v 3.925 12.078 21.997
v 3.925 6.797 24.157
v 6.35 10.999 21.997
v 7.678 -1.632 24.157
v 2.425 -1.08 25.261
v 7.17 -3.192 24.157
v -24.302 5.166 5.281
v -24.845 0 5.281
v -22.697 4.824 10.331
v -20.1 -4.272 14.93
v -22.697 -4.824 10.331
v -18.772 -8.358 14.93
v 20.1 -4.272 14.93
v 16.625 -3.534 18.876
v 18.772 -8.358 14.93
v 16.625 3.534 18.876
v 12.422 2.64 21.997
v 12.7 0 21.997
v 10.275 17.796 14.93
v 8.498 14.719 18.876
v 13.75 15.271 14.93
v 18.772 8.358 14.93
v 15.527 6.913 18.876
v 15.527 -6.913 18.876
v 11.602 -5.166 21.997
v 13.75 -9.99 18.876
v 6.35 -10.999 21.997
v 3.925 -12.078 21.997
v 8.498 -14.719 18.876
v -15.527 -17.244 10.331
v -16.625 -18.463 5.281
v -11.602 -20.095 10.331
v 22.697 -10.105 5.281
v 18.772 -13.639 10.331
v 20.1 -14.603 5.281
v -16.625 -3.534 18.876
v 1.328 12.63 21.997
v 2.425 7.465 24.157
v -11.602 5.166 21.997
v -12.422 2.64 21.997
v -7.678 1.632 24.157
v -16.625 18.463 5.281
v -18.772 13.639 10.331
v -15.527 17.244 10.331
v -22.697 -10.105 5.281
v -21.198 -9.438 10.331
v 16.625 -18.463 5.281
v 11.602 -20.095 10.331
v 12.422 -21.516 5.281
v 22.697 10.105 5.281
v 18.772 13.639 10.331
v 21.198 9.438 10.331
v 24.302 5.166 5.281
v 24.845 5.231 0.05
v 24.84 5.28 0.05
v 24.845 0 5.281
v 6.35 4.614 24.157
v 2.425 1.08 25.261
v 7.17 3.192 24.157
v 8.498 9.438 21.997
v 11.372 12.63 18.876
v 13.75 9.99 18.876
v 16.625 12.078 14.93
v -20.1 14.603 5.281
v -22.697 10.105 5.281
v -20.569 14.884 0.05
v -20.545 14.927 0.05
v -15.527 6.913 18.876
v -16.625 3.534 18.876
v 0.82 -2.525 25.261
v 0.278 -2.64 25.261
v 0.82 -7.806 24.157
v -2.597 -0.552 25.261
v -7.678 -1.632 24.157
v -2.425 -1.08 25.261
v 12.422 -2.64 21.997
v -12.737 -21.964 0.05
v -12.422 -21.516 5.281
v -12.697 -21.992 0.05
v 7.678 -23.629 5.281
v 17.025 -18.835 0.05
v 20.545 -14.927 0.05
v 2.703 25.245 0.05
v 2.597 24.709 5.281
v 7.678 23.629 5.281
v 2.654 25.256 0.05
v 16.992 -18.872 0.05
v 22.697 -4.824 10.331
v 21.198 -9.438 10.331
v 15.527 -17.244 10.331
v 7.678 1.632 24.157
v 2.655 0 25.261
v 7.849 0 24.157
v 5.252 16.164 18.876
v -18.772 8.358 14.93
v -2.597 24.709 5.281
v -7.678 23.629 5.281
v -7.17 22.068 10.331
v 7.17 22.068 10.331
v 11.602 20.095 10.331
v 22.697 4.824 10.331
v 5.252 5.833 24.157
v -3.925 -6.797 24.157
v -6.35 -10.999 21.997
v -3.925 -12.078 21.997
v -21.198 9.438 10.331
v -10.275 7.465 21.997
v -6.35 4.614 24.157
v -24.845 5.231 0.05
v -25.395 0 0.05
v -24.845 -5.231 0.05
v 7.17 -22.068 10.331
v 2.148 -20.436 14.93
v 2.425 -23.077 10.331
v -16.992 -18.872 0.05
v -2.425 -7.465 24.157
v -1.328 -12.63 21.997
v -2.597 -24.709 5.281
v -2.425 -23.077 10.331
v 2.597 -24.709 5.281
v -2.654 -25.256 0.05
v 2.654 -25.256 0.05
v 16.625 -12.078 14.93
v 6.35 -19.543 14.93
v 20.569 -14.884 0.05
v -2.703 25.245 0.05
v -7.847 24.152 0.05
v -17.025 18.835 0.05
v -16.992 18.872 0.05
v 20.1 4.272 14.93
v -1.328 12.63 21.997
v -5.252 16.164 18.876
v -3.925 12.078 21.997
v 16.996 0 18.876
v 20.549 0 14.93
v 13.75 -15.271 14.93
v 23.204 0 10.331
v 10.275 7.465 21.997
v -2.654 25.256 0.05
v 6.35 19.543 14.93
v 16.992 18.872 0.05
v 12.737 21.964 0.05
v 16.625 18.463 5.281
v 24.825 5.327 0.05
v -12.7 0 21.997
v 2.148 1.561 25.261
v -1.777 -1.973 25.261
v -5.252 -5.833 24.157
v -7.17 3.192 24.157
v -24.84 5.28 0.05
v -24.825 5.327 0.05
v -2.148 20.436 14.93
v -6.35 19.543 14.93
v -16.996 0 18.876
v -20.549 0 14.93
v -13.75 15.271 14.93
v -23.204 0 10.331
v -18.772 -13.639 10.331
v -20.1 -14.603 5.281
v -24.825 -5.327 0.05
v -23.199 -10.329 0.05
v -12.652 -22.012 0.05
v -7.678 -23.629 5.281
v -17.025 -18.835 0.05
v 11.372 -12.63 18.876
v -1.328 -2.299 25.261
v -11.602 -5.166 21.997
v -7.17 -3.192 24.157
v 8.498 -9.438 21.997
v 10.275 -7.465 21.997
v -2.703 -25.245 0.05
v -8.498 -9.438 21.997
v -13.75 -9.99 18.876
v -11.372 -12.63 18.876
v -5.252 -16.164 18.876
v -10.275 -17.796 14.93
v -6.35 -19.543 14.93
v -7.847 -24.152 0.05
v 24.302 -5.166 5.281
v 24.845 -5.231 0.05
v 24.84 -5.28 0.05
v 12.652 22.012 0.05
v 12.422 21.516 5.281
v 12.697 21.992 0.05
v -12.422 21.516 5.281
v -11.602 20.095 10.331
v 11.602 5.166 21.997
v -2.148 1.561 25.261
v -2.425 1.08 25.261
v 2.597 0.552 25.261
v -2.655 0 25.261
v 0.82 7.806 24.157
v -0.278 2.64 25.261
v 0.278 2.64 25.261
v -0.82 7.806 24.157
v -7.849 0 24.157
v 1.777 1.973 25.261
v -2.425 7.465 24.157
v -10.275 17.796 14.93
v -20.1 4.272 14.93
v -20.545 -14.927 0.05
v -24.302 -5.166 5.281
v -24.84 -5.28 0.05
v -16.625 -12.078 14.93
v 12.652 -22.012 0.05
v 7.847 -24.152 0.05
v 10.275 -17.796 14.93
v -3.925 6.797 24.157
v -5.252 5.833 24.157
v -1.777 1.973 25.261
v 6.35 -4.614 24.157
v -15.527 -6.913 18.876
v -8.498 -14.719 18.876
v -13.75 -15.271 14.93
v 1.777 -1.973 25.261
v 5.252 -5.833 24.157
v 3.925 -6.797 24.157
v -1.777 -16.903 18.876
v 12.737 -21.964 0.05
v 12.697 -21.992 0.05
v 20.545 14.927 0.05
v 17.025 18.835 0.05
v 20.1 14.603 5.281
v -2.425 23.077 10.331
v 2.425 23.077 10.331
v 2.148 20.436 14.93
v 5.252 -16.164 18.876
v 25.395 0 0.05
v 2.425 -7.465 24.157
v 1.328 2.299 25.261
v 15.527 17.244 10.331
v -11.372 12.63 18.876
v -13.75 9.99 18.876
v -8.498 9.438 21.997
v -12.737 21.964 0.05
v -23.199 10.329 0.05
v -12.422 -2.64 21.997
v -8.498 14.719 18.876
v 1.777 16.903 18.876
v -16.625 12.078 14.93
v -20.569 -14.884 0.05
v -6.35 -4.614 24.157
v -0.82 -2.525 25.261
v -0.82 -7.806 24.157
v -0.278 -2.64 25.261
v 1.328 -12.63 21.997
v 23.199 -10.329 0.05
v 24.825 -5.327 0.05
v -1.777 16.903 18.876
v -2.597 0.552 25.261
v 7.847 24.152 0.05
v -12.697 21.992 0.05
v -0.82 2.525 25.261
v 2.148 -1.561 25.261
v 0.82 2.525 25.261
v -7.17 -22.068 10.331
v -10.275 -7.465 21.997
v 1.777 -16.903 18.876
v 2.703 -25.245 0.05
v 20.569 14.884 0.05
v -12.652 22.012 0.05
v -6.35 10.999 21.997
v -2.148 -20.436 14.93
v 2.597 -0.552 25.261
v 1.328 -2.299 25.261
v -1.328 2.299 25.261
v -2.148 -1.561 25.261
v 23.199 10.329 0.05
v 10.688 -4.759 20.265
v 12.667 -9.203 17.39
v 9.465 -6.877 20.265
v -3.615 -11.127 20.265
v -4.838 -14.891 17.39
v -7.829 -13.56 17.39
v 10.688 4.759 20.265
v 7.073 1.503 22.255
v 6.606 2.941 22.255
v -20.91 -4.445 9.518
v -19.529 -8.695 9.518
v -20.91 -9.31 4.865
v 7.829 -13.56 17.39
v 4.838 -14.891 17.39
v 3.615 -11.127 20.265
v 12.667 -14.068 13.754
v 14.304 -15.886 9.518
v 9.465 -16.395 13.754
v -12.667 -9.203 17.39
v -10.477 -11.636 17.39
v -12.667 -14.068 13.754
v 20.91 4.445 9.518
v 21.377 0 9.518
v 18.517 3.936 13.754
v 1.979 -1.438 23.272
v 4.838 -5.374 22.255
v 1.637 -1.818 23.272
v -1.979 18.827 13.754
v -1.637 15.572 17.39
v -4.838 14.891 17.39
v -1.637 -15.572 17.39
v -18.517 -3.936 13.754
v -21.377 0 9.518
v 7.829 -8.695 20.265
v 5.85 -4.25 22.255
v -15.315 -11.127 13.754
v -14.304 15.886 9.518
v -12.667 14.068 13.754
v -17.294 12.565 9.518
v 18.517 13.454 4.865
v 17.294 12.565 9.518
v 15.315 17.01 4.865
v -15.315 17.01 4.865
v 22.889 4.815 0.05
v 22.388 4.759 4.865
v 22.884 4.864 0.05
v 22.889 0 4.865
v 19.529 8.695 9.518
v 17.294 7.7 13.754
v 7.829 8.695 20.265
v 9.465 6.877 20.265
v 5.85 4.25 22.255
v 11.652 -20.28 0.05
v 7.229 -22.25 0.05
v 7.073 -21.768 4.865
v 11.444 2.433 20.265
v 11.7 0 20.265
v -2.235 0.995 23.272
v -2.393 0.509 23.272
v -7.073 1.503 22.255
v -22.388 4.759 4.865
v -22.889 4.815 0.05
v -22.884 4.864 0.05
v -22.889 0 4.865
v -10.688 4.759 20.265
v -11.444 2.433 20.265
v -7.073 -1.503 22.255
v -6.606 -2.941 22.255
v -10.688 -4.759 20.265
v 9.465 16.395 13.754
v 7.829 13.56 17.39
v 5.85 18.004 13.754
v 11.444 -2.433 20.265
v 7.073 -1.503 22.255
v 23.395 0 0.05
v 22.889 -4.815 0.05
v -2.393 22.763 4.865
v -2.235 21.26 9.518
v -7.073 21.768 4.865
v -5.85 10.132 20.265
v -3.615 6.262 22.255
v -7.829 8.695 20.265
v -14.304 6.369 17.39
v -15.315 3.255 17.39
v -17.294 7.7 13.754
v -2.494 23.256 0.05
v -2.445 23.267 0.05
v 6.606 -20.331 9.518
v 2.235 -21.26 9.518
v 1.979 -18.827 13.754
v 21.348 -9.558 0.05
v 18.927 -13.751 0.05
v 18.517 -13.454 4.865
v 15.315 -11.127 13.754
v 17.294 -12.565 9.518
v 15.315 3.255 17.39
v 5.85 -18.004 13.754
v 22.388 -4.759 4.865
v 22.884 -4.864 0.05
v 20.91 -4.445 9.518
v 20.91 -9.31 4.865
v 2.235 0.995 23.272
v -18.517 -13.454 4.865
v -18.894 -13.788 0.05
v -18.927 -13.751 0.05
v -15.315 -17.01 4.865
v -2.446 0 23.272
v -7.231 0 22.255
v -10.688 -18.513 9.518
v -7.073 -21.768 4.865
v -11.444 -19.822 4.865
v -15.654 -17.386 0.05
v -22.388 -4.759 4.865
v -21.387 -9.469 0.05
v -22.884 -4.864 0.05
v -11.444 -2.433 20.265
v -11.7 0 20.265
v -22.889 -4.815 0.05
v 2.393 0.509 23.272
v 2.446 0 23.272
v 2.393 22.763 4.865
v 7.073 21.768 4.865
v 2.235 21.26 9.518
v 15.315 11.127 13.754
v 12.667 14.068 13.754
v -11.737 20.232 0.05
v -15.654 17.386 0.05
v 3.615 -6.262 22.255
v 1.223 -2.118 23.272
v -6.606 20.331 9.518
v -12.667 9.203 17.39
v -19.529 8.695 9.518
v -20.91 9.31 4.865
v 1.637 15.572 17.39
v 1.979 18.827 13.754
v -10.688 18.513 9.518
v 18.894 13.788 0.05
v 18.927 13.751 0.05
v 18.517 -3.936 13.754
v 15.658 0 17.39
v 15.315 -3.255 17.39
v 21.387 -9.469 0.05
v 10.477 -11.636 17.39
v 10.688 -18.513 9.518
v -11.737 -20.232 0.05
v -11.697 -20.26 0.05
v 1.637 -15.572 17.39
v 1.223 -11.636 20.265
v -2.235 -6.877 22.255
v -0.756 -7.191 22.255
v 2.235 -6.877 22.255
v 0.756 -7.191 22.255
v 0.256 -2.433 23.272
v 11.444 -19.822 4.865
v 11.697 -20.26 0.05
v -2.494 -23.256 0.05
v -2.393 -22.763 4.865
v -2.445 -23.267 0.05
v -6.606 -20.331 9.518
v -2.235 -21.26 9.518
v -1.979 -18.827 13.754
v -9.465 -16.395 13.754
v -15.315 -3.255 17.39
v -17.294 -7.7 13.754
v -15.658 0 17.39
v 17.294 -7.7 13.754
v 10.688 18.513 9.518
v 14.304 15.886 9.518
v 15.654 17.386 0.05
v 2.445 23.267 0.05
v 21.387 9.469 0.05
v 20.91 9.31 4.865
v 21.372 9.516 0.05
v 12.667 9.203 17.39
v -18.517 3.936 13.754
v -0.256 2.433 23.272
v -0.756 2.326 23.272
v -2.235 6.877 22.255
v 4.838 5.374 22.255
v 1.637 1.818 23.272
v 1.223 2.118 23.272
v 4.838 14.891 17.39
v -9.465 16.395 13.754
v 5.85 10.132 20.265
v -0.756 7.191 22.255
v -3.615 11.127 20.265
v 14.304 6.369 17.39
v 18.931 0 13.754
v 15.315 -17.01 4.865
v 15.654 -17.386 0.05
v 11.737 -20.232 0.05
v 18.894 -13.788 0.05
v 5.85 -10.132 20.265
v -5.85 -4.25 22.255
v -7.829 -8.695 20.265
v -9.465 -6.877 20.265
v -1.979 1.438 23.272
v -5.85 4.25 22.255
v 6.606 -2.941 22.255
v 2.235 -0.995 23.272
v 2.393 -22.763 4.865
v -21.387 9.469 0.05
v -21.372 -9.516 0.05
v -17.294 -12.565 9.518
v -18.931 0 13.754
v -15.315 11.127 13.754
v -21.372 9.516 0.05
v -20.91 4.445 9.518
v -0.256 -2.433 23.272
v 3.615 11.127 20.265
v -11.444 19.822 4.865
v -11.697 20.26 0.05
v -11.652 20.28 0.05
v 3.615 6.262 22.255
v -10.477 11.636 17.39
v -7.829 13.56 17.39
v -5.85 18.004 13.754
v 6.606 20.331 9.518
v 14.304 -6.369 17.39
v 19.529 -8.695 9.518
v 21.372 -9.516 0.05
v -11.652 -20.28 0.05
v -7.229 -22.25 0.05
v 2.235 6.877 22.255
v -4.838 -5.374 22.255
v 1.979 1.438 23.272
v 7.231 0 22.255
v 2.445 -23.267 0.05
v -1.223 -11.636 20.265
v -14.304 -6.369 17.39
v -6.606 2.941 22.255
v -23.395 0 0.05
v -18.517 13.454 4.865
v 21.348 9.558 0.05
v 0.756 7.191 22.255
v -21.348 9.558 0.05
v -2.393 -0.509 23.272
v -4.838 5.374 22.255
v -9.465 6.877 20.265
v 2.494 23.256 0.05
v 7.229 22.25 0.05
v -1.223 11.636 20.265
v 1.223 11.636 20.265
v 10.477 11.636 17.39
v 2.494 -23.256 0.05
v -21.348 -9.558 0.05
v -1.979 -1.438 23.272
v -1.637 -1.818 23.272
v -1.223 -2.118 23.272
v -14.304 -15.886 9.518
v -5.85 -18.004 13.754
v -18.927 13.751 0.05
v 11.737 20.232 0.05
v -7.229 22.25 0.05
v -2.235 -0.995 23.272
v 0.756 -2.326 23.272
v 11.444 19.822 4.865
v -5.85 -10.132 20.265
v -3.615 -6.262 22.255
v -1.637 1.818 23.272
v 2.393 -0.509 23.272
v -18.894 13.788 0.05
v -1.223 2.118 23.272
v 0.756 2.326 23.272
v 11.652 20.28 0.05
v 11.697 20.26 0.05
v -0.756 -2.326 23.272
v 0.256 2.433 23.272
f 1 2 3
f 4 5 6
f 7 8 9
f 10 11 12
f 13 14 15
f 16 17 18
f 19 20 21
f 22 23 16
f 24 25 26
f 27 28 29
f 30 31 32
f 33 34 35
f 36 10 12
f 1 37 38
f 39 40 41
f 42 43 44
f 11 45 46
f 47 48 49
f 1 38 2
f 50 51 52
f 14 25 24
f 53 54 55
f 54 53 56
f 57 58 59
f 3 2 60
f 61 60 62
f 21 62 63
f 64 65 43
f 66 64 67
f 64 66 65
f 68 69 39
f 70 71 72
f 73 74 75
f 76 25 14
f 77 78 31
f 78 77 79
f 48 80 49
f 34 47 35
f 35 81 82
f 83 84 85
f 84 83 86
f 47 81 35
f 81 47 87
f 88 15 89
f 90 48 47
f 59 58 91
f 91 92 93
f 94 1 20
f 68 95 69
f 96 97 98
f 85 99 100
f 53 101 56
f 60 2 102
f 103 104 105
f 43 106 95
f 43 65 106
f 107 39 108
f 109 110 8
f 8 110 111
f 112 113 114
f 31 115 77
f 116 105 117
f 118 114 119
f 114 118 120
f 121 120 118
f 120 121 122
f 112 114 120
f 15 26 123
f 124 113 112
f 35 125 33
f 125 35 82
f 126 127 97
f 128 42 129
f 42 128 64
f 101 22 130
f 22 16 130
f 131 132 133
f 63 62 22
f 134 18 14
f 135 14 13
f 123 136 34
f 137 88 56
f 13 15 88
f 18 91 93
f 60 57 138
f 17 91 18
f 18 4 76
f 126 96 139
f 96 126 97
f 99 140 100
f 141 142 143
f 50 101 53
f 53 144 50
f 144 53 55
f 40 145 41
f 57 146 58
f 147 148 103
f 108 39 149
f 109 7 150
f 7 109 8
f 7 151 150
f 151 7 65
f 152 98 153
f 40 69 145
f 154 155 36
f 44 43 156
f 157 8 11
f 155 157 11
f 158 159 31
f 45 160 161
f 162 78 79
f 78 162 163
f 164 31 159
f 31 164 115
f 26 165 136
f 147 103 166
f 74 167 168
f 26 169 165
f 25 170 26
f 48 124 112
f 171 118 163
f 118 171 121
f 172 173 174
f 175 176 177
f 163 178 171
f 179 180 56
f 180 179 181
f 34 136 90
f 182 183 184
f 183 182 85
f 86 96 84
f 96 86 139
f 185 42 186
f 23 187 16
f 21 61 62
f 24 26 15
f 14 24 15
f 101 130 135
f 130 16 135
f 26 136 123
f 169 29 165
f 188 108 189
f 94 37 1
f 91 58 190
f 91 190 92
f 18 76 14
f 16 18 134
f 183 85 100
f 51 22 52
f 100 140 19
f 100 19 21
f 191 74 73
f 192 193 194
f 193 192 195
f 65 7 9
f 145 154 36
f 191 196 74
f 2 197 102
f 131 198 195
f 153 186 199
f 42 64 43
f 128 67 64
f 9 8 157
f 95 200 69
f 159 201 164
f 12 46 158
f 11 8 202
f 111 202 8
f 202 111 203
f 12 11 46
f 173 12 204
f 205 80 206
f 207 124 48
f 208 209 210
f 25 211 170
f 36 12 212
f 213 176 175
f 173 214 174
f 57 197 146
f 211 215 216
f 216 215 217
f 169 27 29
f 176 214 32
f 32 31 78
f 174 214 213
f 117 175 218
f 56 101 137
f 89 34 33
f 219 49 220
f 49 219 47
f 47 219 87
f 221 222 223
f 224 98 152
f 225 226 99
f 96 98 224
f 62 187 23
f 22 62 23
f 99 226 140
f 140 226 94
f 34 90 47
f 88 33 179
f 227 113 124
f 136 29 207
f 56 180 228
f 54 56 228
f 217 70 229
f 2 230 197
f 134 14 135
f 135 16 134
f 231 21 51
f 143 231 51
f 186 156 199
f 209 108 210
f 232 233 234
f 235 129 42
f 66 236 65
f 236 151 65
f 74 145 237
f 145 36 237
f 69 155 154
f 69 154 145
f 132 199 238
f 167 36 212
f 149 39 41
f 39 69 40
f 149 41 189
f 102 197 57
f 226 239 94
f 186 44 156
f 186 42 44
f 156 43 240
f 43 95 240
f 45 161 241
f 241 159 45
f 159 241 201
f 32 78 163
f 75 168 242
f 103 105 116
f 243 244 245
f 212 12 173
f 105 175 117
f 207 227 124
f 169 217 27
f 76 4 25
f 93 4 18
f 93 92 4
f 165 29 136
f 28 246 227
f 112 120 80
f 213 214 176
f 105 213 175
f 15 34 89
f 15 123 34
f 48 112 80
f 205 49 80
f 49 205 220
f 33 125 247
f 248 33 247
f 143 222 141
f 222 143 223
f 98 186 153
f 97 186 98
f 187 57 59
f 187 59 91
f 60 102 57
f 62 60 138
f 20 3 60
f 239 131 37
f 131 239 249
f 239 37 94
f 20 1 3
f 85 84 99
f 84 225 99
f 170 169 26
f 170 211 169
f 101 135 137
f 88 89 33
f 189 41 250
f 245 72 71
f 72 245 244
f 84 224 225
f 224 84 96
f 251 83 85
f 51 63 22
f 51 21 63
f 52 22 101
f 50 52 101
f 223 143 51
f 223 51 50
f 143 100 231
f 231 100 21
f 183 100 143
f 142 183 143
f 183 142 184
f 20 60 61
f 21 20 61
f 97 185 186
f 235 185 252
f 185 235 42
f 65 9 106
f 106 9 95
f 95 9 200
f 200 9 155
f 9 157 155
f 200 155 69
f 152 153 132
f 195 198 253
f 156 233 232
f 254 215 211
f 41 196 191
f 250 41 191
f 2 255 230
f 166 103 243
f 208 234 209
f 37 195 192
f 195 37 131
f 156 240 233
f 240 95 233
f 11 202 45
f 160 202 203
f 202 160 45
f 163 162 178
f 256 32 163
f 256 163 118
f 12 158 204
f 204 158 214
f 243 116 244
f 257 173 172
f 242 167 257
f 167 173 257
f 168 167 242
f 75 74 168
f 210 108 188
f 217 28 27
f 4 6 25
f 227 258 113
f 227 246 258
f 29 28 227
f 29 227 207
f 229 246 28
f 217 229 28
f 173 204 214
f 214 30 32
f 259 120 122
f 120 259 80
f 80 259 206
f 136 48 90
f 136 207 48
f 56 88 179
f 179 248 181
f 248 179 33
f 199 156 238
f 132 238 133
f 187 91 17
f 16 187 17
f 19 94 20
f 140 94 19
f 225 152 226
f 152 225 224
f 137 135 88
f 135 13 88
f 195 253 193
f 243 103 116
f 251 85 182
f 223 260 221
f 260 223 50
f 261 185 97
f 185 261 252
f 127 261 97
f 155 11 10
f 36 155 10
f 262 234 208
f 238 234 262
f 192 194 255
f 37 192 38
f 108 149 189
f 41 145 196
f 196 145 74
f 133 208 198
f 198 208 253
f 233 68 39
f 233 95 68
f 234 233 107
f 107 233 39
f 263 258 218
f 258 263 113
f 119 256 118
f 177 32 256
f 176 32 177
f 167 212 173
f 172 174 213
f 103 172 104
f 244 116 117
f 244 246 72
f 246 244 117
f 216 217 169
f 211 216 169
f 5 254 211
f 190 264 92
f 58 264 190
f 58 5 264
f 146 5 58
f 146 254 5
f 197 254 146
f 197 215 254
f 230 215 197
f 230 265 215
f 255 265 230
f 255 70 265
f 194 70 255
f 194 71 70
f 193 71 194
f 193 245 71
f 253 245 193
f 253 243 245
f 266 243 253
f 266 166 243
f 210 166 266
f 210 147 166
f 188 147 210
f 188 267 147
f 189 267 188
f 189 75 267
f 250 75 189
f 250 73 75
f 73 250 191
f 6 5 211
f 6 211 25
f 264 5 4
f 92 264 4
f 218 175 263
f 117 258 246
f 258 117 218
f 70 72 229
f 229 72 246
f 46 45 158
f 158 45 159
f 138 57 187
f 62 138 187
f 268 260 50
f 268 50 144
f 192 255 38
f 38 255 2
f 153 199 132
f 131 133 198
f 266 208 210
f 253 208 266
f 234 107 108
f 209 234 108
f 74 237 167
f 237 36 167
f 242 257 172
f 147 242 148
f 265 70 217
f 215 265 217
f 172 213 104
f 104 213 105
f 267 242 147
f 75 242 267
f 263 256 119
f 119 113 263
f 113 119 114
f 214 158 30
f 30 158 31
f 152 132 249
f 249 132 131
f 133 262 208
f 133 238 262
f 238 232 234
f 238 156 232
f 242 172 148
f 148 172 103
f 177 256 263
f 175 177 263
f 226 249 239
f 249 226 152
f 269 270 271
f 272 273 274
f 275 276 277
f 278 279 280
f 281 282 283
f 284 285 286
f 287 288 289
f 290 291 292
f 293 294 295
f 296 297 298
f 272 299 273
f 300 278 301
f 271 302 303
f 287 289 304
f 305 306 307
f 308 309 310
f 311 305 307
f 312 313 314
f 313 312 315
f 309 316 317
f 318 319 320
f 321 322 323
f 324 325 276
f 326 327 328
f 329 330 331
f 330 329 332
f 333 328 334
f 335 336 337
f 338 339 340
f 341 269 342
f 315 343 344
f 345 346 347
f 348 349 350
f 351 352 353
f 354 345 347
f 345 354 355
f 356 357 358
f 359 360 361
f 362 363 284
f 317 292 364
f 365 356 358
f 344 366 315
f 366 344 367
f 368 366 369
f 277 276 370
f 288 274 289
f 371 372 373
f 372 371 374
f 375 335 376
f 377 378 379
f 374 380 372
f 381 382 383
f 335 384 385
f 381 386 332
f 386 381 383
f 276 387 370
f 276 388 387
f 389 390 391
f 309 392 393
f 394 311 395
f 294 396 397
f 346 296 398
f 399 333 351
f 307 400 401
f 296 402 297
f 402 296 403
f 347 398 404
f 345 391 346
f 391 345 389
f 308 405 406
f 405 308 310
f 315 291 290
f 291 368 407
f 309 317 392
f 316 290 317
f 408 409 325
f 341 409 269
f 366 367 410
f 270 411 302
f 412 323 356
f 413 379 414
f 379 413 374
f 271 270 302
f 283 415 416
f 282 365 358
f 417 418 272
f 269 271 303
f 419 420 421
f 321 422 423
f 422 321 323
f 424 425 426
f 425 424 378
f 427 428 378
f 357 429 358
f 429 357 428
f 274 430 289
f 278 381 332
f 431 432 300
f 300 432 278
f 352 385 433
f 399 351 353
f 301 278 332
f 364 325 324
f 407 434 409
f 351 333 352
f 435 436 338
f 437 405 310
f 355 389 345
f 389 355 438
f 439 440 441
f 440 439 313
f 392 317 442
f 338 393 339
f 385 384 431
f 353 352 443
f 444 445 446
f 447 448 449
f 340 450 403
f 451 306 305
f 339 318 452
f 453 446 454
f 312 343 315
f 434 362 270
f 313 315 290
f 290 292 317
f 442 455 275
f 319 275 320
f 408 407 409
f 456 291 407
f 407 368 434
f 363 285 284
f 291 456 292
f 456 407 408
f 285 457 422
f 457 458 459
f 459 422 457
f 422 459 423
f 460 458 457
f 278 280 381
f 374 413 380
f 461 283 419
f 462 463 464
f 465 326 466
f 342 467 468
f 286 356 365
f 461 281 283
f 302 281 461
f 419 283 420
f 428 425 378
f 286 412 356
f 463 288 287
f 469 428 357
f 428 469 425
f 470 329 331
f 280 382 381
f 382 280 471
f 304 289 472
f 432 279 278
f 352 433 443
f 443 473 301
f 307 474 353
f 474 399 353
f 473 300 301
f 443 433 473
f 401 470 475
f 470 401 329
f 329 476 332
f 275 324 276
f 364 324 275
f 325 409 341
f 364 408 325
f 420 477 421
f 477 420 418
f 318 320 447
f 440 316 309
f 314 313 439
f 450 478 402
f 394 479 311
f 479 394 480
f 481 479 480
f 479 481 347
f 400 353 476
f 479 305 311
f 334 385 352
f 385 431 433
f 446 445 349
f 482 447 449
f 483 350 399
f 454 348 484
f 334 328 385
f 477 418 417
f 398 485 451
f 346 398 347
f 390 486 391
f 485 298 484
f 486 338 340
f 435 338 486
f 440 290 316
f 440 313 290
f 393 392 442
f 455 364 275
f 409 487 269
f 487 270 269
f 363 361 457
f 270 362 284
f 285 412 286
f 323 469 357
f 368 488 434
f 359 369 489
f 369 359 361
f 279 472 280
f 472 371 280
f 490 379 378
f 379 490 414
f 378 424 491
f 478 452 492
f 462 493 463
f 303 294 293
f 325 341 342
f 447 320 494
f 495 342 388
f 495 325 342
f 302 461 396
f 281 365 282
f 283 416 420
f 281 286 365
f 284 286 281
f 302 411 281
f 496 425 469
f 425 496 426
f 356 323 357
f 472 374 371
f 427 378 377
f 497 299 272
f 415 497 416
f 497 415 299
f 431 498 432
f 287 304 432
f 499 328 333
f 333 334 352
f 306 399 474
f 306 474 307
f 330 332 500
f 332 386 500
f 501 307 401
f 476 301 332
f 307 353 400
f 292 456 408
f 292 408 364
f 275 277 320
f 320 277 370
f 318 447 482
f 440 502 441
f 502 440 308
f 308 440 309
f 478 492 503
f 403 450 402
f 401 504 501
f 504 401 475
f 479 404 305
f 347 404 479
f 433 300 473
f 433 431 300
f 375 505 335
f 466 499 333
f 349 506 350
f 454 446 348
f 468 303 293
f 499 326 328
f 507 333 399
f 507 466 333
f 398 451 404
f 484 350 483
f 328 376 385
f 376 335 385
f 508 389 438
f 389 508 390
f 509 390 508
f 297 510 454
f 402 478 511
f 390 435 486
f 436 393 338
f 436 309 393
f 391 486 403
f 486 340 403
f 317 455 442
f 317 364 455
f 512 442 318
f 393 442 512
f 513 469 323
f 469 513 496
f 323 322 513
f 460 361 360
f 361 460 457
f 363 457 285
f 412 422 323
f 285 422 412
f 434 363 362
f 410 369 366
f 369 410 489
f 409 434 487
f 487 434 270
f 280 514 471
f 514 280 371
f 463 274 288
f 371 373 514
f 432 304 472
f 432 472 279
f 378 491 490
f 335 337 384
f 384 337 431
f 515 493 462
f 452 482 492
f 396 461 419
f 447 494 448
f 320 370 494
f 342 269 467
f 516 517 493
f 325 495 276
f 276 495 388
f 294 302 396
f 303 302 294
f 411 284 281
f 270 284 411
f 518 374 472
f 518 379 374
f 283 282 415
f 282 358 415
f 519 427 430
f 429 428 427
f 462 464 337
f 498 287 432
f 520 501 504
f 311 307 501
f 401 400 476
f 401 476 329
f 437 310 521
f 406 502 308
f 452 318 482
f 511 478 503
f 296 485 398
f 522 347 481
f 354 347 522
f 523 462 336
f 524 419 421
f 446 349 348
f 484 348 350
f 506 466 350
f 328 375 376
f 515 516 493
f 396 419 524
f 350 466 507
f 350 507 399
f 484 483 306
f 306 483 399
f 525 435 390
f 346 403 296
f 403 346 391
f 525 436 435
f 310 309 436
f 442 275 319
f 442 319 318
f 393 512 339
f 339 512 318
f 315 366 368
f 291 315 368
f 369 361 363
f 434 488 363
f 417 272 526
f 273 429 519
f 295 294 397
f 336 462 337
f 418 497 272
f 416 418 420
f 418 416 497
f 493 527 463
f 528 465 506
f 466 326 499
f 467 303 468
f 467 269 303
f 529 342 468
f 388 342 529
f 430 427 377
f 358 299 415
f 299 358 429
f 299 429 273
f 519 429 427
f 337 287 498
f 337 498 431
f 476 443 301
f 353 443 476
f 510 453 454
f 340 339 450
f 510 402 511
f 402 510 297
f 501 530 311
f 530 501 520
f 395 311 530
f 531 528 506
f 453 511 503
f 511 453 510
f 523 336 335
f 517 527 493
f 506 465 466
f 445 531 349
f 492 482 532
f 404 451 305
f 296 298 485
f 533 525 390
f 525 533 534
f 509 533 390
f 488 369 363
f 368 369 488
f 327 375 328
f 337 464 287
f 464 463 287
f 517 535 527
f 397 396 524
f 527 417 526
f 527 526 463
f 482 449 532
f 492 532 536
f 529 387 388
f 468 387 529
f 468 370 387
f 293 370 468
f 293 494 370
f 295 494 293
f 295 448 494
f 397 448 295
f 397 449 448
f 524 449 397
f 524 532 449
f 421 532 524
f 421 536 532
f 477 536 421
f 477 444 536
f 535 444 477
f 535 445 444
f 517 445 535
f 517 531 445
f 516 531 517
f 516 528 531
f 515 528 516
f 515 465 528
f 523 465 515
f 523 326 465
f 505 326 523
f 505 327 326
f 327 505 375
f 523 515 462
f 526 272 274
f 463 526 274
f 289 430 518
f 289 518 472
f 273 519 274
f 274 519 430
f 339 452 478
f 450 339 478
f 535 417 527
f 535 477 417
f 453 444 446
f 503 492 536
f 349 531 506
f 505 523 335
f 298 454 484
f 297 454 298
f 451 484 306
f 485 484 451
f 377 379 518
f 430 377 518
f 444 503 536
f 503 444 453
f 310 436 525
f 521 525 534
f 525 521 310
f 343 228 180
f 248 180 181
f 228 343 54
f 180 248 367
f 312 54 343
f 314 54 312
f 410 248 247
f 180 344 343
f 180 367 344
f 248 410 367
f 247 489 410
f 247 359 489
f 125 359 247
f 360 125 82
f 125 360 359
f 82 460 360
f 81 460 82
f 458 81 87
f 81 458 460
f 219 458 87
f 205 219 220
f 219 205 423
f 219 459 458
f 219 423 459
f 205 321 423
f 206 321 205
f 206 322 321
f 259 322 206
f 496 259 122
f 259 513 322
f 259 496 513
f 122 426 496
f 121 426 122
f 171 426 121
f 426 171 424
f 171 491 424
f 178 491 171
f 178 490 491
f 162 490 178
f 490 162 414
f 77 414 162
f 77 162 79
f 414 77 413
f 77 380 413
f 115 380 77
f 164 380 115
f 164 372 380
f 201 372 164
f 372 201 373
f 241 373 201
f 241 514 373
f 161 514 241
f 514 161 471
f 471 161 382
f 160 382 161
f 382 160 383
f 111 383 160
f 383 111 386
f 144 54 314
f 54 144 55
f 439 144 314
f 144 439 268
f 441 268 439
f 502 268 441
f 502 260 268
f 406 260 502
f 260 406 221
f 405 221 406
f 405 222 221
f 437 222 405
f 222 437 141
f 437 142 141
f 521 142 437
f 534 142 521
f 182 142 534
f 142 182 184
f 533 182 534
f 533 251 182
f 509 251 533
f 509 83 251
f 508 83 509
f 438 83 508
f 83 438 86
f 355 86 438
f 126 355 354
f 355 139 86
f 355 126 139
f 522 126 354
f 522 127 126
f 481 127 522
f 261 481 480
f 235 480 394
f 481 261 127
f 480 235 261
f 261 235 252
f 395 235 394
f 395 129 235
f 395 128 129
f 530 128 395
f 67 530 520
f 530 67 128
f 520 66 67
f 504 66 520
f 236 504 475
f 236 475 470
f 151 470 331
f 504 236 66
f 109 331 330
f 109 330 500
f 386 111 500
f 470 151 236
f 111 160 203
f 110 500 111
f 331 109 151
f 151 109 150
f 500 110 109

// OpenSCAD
E = 0.1;
E2 = 2 * E;
D = 25.4 * 2;
THICKNESS = 2;

difference() {
    sphere(d = D);
    sphere(d = D - THICKNESS * 2);
    translate([0, 0, -D/2])
        cube([D + E, D + E, D + E], center = true);
}
